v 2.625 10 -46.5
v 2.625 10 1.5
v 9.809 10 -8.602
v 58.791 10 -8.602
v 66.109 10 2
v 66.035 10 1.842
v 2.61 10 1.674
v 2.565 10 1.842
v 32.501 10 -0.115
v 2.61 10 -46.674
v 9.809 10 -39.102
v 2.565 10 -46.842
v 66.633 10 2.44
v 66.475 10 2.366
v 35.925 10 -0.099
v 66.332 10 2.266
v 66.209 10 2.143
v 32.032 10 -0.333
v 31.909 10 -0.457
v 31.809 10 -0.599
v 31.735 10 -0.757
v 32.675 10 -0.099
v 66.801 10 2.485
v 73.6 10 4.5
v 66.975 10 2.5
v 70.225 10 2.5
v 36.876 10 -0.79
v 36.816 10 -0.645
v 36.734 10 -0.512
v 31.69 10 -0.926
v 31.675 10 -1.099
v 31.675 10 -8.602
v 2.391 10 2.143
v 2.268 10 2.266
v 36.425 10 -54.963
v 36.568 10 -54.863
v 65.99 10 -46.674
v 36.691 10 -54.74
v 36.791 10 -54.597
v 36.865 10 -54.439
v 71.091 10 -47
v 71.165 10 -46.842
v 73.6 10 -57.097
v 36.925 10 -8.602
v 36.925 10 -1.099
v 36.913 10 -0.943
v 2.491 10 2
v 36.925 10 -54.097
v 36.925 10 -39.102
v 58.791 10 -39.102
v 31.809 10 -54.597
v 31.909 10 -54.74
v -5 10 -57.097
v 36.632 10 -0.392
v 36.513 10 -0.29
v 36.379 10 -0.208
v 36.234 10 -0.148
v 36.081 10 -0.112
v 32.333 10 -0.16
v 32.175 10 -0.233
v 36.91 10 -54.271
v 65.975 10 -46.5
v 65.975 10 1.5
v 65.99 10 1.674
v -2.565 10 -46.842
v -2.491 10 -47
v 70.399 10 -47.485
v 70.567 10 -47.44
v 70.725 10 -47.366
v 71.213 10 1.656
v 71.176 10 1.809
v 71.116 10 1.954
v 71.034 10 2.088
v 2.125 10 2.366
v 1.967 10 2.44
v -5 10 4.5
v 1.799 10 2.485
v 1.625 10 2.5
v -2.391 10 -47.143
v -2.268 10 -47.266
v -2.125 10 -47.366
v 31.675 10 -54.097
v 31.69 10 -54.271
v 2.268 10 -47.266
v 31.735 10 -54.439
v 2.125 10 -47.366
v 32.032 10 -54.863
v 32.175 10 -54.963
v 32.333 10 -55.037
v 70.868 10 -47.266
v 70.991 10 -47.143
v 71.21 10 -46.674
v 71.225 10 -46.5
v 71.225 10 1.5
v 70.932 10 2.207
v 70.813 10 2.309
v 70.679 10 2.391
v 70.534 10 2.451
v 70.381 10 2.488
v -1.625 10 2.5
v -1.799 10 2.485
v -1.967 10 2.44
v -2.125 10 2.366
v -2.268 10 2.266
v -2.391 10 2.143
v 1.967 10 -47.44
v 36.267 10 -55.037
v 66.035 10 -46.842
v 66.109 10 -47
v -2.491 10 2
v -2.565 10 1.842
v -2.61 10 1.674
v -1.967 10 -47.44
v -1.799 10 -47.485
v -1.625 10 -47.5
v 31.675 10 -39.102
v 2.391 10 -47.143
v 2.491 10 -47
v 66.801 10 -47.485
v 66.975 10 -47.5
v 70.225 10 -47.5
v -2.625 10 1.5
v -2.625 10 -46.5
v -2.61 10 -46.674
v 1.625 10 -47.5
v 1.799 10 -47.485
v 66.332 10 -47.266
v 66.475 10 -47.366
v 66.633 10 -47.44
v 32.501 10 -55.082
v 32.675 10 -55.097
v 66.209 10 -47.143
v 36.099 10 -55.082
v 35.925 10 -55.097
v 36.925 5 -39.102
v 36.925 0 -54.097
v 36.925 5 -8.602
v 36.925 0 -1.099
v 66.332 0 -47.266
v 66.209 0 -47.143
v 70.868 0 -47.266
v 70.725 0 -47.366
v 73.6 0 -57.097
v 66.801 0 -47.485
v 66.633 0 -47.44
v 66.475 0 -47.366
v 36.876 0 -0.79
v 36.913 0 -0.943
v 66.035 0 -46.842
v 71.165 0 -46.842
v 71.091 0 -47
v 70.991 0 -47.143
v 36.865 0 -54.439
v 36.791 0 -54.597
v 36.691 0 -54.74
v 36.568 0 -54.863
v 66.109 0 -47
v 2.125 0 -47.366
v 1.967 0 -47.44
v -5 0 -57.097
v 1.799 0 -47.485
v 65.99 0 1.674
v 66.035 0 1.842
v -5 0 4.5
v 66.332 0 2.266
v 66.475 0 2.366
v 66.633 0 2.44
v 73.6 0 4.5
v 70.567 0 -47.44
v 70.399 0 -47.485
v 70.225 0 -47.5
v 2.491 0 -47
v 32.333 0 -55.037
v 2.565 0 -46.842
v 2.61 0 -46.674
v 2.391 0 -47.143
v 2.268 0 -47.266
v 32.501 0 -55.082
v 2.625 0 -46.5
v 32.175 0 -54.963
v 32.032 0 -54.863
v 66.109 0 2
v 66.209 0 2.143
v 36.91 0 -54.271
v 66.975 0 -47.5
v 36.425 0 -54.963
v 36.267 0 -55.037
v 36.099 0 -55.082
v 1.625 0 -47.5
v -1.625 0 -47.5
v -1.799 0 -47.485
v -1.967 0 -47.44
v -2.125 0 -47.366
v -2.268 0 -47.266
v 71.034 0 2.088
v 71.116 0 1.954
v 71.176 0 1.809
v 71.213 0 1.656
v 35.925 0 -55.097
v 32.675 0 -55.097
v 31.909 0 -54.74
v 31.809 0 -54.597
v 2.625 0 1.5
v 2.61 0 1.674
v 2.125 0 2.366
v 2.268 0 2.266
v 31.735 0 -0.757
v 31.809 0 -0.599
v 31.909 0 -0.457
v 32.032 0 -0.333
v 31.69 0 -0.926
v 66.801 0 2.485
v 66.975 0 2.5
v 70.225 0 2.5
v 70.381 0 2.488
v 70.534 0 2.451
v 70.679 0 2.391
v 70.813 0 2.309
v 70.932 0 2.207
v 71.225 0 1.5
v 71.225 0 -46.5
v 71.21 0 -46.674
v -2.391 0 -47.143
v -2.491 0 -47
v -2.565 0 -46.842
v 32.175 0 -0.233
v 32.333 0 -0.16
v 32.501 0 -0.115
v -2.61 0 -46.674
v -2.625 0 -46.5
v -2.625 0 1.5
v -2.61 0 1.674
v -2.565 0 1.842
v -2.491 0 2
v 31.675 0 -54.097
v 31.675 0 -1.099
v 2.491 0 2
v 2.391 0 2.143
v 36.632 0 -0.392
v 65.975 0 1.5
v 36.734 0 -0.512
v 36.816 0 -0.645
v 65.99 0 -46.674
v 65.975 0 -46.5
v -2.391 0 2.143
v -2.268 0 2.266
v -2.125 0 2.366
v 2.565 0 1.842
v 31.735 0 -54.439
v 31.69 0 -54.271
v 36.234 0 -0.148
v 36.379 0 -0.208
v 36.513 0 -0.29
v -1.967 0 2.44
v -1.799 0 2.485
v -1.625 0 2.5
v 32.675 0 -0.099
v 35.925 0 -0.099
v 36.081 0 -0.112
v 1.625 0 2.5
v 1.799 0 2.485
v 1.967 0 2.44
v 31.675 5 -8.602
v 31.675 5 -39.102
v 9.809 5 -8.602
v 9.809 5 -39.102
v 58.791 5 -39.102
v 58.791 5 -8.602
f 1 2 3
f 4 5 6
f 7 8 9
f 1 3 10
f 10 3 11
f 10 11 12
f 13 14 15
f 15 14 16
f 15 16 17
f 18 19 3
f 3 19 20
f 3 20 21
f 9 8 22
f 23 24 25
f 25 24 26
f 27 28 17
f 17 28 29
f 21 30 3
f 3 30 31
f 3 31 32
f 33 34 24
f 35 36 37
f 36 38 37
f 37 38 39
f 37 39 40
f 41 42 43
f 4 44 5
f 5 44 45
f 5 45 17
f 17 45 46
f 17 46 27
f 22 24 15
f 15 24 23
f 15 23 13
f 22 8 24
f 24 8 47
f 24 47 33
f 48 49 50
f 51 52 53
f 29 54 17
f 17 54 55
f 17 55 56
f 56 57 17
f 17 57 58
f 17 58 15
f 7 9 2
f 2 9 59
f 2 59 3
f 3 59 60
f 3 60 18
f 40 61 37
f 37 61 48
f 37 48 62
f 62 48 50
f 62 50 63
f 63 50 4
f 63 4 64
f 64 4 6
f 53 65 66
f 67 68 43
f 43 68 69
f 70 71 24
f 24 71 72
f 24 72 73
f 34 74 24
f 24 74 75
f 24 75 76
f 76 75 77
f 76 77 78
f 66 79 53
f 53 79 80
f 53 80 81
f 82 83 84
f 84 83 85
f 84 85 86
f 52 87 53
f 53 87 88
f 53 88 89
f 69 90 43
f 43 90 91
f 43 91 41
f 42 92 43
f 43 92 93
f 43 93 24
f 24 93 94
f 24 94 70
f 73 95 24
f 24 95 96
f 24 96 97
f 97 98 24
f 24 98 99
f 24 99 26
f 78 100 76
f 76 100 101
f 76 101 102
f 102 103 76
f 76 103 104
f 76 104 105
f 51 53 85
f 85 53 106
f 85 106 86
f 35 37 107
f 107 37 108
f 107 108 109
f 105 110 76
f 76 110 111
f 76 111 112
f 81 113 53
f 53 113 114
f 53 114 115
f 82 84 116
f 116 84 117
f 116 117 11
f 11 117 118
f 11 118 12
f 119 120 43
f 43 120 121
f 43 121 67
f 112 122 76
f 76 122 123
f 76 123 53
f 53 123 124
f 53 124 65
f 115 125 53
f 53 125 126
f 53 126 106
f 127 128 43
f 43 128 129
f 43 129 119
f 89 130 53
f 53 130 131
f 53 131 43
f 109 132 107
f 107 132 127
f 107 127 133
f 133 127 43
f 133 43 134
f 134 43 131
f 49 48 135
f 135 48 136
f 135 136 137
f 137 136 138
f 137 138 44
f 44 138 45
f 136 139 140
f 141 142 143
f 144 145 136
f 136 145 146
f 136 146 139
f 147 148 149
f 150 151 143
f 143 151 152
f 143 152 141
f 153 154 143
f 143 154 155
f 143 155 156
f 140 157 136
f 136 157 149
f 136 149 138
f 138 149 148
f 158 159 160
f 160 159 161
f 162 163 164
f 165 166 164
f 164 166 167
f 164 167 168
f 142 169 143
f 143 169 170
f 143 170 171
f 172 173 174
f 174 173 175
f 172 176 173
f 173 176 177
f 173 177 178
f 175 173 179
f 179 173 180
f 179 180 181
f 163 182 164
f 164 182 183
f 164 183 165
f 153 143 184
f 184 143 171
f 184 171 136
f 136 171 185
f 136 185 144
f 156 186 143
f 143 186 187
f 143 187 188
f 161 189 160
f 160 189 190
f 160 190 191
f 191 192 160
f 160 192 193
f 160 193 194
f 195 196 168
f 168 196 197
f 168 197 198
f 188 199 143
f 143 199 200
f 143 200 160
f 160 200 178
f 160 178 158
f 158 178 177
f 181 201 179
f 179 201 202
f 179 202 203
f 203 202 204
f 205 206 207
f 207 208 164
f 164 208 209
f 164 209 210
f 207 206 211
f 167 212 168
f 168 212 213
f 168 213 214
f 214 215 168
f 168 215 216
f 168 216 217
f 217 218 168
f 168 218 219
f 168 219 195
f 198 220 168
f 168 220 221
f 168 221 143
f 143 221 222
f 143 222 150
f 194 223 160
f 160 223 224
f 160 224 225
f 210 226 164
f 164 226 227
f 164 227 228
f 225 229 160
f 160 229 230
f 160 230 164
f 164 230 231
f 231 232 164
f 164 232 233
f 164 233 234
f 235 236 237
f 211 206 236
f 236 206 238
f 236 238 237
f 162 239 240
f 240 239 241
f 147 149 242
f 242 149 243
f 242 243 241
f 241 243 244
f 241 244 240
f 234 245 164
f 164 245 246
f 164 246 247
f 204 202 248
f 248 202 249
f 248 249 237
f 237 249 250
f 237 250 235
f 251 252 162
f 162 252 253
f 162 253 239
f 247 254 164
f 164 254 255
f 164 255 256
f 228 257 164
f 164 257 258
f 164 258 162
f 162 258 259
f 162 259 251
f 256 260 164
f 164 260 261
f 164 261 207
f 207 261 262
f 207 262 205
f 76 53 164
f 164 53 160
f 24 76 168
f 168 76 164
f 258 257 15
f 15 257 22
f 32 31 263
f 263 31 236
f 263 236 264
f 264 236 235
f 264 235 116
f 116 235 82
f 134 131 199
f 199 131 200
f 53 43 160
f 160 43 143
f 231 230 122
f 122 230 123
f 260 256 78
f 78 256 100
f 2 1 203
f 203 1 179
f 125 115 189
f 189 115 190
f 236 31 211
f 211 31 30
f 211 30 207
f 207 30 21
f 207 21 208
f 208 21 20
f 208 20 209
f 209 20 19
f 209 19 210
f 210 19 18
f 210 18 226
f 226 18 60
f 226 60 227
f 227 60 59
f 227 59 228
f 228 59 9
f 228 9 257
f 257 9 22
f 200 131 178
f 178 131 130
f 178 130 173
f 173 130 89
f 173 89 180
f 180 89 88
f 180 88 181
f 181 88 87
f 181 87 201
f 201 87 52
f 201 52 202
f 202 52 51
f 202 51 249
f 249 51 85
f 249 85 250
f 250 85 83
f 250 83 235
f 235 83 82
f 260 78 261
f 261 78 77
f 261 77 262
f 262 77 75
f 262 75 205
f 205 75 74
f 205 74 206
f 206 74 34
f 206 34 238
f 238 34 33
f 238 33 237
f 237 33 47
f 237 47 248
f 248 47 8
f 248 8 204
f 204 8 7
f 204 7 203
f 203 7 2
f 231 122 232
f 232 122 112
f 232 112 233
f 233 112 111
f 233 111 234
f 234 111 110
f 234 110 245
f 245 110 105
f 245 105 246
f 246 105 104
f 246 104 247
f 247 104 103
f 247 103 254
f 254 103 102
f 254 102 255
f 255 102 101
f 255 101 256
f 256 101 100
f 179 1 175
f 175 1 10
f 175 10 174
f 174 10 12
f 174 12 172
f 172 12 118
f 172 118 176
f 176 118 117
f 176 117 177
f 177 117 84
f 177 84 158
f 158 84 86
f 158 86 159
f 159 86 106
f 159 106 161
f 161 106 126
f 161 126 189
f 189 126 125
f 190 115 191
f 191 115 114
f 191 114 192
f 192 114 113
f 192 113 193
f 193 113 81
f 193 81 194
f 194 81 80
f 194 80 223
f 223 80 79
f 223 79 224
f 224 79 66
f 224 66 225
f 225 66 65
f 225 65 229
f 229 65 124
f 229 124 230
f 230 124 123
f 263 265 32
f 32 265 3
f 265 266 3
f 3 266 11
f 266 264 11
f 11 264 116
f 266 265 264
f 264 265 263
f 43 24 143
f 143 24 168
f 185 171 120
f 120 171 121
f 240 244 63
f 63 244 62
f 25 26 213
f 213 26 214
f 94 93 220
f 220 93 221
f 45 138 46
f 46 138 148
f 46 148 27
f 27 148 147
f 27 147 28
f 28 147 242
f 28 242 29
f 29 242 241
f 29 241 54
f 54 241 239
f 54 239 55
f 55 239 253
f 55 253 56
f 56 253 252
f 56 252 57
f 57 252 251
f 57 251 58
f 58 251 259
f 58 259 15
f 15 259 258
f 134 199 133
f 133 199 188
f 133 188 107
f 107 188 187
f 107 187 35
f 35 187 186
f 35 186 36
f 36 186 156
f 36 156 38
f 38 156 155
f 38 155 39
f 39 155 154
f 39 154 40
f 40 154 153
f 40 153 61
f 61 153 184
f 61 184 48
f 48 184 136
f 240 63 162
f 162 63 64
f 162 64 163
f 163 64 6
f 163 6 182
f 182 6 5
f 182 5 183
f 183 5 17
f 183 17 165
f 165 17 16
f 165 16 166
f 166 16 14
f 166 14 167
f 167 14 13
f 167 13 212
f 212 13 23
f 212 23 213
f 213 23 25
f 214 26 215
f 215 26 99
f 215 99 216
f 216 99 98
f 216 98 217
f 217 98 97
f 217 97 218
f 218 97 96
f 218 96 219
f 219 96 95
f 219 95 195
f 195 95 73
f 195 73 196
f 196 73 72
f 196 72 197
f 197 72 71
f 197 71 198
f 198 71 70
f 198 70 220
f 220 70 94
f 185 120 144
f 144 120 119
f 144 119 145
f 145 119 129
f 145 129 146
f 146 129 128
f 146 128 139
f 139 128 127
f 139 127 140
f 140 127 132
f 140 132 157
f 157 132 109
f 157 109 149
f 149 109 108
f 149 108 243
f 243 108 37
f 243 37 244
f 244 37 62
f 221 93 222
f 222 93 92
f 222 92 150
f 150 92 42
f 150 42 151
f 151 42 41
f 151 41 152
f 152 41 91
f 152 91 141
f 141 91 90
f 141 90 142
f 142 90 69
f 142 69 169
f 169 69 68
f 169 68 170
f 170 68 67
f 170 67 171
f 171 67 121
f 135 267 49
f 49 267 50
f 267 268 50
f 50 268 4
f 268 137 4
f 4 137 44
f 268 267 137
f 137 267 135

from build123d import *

# Parameters (mm, degrees)
BOSS_EXTRUDE1_DEPTH  = 10
FILLET1_R            = 1
SKETCH2_W            = 21.86553483
SKETCH2_H            = 30.5
CUT_EXTRUDE1_DEPTH   = 5
FILLET1_OF_MIRROR1_R = 1


with BuildPart() as part:
    # Sketch1 → Boss-Extrude1 (new body)
    with BuildSketch(Plane(origin=(0, 0, 0), x_dir=(1, 0, 0), z_dir=(0, 1, 0))):
        Polygon((-5, 57.097150921), (34.3, 57.097150921), (34.3, 55.097150921), (31.675, 55.097150921), (31.675, 52.597150921), (31.675, 2.599340873), (31.675, 0.099340873), (34.3, 0.099340873), (34.3, -4.5), (-5, -4.5), align=None)
        Polygon((-2.625, 45), (-2.625, 0), (-2.625, -2.5), (0, -2.5), (2.625, -2.5), (2.625, 0), (2.625, 45), (2.625, 47.5), (0, 47.5), (-2.625, 47.5), align=None, mode=Mode.SUBTRACT)
    boss_extrude1 = extrude(amount=BOSS_EXTRUDE1_DEPTH)

    # Fillet1
    fillet1_edges = [part.edges().sort_by_distance(p)[0] for p in [
        (31.675, 5, -55.097150921),
        (31.675, 5, -0.099340873),
        (-2.625, 5, -47.5),
        (-2.625, 5, 2.5),
        (2.625, 5, 2.5),
        (2.625, 5, -47.5),
    ]]
    fillet(fillet1_edges, radius=FILLET1_R)

    # Sketch2 → Cut-Extrude1 (cut)
    with BuildSketch(Plane(origin=(0, 10, 0), x_dir=(1, 0, 0), z_dir=(0, 1, 0))):
        with Locations((20.742232585, 23.8519351)):
            Rectangle(SKETCH2_W, SKETCH2_H)
    cut_extrude1 = extrude(amount=-CUT_EXTRUDE1_DEPTH, mode=Mode.SUBTRACT)

    # Mirror1: Boss-Extrude1, Cut-Extrude1 across plane
    add(boss_extrude1.mirror(Plane(origin=(34.3, 10, -0.099340873), x_dir=(0, 0, 1), z_dir=(-1, 0, 0))))
    add(cut_extrude1.mirror(Plane(origin=(34.3, 10, -0.099340873), x_dir=(0, 0, 1), z_dir=(-1, 0, 0))), mode=Mode.SUBTRACT)

    # Fillet1 of Mirror1
    fillet1_of_mirror1_edges = [part.edges().sort_by_distance(p)[0] for p in [
        (36.925, 5, -55.097150921),
        (36.925, 5, -0.099340873),
        (71.225, 5, -47.5),
        (71.225, 5, 2.5),
        (65.975, 5, 2.5),
        (65.975, 5, -47.5),
    ]]
    fillet(fillet1_of_mirror1_edges, radius=FILLET1_OF_MIRROR1_R)


solid = part.part
